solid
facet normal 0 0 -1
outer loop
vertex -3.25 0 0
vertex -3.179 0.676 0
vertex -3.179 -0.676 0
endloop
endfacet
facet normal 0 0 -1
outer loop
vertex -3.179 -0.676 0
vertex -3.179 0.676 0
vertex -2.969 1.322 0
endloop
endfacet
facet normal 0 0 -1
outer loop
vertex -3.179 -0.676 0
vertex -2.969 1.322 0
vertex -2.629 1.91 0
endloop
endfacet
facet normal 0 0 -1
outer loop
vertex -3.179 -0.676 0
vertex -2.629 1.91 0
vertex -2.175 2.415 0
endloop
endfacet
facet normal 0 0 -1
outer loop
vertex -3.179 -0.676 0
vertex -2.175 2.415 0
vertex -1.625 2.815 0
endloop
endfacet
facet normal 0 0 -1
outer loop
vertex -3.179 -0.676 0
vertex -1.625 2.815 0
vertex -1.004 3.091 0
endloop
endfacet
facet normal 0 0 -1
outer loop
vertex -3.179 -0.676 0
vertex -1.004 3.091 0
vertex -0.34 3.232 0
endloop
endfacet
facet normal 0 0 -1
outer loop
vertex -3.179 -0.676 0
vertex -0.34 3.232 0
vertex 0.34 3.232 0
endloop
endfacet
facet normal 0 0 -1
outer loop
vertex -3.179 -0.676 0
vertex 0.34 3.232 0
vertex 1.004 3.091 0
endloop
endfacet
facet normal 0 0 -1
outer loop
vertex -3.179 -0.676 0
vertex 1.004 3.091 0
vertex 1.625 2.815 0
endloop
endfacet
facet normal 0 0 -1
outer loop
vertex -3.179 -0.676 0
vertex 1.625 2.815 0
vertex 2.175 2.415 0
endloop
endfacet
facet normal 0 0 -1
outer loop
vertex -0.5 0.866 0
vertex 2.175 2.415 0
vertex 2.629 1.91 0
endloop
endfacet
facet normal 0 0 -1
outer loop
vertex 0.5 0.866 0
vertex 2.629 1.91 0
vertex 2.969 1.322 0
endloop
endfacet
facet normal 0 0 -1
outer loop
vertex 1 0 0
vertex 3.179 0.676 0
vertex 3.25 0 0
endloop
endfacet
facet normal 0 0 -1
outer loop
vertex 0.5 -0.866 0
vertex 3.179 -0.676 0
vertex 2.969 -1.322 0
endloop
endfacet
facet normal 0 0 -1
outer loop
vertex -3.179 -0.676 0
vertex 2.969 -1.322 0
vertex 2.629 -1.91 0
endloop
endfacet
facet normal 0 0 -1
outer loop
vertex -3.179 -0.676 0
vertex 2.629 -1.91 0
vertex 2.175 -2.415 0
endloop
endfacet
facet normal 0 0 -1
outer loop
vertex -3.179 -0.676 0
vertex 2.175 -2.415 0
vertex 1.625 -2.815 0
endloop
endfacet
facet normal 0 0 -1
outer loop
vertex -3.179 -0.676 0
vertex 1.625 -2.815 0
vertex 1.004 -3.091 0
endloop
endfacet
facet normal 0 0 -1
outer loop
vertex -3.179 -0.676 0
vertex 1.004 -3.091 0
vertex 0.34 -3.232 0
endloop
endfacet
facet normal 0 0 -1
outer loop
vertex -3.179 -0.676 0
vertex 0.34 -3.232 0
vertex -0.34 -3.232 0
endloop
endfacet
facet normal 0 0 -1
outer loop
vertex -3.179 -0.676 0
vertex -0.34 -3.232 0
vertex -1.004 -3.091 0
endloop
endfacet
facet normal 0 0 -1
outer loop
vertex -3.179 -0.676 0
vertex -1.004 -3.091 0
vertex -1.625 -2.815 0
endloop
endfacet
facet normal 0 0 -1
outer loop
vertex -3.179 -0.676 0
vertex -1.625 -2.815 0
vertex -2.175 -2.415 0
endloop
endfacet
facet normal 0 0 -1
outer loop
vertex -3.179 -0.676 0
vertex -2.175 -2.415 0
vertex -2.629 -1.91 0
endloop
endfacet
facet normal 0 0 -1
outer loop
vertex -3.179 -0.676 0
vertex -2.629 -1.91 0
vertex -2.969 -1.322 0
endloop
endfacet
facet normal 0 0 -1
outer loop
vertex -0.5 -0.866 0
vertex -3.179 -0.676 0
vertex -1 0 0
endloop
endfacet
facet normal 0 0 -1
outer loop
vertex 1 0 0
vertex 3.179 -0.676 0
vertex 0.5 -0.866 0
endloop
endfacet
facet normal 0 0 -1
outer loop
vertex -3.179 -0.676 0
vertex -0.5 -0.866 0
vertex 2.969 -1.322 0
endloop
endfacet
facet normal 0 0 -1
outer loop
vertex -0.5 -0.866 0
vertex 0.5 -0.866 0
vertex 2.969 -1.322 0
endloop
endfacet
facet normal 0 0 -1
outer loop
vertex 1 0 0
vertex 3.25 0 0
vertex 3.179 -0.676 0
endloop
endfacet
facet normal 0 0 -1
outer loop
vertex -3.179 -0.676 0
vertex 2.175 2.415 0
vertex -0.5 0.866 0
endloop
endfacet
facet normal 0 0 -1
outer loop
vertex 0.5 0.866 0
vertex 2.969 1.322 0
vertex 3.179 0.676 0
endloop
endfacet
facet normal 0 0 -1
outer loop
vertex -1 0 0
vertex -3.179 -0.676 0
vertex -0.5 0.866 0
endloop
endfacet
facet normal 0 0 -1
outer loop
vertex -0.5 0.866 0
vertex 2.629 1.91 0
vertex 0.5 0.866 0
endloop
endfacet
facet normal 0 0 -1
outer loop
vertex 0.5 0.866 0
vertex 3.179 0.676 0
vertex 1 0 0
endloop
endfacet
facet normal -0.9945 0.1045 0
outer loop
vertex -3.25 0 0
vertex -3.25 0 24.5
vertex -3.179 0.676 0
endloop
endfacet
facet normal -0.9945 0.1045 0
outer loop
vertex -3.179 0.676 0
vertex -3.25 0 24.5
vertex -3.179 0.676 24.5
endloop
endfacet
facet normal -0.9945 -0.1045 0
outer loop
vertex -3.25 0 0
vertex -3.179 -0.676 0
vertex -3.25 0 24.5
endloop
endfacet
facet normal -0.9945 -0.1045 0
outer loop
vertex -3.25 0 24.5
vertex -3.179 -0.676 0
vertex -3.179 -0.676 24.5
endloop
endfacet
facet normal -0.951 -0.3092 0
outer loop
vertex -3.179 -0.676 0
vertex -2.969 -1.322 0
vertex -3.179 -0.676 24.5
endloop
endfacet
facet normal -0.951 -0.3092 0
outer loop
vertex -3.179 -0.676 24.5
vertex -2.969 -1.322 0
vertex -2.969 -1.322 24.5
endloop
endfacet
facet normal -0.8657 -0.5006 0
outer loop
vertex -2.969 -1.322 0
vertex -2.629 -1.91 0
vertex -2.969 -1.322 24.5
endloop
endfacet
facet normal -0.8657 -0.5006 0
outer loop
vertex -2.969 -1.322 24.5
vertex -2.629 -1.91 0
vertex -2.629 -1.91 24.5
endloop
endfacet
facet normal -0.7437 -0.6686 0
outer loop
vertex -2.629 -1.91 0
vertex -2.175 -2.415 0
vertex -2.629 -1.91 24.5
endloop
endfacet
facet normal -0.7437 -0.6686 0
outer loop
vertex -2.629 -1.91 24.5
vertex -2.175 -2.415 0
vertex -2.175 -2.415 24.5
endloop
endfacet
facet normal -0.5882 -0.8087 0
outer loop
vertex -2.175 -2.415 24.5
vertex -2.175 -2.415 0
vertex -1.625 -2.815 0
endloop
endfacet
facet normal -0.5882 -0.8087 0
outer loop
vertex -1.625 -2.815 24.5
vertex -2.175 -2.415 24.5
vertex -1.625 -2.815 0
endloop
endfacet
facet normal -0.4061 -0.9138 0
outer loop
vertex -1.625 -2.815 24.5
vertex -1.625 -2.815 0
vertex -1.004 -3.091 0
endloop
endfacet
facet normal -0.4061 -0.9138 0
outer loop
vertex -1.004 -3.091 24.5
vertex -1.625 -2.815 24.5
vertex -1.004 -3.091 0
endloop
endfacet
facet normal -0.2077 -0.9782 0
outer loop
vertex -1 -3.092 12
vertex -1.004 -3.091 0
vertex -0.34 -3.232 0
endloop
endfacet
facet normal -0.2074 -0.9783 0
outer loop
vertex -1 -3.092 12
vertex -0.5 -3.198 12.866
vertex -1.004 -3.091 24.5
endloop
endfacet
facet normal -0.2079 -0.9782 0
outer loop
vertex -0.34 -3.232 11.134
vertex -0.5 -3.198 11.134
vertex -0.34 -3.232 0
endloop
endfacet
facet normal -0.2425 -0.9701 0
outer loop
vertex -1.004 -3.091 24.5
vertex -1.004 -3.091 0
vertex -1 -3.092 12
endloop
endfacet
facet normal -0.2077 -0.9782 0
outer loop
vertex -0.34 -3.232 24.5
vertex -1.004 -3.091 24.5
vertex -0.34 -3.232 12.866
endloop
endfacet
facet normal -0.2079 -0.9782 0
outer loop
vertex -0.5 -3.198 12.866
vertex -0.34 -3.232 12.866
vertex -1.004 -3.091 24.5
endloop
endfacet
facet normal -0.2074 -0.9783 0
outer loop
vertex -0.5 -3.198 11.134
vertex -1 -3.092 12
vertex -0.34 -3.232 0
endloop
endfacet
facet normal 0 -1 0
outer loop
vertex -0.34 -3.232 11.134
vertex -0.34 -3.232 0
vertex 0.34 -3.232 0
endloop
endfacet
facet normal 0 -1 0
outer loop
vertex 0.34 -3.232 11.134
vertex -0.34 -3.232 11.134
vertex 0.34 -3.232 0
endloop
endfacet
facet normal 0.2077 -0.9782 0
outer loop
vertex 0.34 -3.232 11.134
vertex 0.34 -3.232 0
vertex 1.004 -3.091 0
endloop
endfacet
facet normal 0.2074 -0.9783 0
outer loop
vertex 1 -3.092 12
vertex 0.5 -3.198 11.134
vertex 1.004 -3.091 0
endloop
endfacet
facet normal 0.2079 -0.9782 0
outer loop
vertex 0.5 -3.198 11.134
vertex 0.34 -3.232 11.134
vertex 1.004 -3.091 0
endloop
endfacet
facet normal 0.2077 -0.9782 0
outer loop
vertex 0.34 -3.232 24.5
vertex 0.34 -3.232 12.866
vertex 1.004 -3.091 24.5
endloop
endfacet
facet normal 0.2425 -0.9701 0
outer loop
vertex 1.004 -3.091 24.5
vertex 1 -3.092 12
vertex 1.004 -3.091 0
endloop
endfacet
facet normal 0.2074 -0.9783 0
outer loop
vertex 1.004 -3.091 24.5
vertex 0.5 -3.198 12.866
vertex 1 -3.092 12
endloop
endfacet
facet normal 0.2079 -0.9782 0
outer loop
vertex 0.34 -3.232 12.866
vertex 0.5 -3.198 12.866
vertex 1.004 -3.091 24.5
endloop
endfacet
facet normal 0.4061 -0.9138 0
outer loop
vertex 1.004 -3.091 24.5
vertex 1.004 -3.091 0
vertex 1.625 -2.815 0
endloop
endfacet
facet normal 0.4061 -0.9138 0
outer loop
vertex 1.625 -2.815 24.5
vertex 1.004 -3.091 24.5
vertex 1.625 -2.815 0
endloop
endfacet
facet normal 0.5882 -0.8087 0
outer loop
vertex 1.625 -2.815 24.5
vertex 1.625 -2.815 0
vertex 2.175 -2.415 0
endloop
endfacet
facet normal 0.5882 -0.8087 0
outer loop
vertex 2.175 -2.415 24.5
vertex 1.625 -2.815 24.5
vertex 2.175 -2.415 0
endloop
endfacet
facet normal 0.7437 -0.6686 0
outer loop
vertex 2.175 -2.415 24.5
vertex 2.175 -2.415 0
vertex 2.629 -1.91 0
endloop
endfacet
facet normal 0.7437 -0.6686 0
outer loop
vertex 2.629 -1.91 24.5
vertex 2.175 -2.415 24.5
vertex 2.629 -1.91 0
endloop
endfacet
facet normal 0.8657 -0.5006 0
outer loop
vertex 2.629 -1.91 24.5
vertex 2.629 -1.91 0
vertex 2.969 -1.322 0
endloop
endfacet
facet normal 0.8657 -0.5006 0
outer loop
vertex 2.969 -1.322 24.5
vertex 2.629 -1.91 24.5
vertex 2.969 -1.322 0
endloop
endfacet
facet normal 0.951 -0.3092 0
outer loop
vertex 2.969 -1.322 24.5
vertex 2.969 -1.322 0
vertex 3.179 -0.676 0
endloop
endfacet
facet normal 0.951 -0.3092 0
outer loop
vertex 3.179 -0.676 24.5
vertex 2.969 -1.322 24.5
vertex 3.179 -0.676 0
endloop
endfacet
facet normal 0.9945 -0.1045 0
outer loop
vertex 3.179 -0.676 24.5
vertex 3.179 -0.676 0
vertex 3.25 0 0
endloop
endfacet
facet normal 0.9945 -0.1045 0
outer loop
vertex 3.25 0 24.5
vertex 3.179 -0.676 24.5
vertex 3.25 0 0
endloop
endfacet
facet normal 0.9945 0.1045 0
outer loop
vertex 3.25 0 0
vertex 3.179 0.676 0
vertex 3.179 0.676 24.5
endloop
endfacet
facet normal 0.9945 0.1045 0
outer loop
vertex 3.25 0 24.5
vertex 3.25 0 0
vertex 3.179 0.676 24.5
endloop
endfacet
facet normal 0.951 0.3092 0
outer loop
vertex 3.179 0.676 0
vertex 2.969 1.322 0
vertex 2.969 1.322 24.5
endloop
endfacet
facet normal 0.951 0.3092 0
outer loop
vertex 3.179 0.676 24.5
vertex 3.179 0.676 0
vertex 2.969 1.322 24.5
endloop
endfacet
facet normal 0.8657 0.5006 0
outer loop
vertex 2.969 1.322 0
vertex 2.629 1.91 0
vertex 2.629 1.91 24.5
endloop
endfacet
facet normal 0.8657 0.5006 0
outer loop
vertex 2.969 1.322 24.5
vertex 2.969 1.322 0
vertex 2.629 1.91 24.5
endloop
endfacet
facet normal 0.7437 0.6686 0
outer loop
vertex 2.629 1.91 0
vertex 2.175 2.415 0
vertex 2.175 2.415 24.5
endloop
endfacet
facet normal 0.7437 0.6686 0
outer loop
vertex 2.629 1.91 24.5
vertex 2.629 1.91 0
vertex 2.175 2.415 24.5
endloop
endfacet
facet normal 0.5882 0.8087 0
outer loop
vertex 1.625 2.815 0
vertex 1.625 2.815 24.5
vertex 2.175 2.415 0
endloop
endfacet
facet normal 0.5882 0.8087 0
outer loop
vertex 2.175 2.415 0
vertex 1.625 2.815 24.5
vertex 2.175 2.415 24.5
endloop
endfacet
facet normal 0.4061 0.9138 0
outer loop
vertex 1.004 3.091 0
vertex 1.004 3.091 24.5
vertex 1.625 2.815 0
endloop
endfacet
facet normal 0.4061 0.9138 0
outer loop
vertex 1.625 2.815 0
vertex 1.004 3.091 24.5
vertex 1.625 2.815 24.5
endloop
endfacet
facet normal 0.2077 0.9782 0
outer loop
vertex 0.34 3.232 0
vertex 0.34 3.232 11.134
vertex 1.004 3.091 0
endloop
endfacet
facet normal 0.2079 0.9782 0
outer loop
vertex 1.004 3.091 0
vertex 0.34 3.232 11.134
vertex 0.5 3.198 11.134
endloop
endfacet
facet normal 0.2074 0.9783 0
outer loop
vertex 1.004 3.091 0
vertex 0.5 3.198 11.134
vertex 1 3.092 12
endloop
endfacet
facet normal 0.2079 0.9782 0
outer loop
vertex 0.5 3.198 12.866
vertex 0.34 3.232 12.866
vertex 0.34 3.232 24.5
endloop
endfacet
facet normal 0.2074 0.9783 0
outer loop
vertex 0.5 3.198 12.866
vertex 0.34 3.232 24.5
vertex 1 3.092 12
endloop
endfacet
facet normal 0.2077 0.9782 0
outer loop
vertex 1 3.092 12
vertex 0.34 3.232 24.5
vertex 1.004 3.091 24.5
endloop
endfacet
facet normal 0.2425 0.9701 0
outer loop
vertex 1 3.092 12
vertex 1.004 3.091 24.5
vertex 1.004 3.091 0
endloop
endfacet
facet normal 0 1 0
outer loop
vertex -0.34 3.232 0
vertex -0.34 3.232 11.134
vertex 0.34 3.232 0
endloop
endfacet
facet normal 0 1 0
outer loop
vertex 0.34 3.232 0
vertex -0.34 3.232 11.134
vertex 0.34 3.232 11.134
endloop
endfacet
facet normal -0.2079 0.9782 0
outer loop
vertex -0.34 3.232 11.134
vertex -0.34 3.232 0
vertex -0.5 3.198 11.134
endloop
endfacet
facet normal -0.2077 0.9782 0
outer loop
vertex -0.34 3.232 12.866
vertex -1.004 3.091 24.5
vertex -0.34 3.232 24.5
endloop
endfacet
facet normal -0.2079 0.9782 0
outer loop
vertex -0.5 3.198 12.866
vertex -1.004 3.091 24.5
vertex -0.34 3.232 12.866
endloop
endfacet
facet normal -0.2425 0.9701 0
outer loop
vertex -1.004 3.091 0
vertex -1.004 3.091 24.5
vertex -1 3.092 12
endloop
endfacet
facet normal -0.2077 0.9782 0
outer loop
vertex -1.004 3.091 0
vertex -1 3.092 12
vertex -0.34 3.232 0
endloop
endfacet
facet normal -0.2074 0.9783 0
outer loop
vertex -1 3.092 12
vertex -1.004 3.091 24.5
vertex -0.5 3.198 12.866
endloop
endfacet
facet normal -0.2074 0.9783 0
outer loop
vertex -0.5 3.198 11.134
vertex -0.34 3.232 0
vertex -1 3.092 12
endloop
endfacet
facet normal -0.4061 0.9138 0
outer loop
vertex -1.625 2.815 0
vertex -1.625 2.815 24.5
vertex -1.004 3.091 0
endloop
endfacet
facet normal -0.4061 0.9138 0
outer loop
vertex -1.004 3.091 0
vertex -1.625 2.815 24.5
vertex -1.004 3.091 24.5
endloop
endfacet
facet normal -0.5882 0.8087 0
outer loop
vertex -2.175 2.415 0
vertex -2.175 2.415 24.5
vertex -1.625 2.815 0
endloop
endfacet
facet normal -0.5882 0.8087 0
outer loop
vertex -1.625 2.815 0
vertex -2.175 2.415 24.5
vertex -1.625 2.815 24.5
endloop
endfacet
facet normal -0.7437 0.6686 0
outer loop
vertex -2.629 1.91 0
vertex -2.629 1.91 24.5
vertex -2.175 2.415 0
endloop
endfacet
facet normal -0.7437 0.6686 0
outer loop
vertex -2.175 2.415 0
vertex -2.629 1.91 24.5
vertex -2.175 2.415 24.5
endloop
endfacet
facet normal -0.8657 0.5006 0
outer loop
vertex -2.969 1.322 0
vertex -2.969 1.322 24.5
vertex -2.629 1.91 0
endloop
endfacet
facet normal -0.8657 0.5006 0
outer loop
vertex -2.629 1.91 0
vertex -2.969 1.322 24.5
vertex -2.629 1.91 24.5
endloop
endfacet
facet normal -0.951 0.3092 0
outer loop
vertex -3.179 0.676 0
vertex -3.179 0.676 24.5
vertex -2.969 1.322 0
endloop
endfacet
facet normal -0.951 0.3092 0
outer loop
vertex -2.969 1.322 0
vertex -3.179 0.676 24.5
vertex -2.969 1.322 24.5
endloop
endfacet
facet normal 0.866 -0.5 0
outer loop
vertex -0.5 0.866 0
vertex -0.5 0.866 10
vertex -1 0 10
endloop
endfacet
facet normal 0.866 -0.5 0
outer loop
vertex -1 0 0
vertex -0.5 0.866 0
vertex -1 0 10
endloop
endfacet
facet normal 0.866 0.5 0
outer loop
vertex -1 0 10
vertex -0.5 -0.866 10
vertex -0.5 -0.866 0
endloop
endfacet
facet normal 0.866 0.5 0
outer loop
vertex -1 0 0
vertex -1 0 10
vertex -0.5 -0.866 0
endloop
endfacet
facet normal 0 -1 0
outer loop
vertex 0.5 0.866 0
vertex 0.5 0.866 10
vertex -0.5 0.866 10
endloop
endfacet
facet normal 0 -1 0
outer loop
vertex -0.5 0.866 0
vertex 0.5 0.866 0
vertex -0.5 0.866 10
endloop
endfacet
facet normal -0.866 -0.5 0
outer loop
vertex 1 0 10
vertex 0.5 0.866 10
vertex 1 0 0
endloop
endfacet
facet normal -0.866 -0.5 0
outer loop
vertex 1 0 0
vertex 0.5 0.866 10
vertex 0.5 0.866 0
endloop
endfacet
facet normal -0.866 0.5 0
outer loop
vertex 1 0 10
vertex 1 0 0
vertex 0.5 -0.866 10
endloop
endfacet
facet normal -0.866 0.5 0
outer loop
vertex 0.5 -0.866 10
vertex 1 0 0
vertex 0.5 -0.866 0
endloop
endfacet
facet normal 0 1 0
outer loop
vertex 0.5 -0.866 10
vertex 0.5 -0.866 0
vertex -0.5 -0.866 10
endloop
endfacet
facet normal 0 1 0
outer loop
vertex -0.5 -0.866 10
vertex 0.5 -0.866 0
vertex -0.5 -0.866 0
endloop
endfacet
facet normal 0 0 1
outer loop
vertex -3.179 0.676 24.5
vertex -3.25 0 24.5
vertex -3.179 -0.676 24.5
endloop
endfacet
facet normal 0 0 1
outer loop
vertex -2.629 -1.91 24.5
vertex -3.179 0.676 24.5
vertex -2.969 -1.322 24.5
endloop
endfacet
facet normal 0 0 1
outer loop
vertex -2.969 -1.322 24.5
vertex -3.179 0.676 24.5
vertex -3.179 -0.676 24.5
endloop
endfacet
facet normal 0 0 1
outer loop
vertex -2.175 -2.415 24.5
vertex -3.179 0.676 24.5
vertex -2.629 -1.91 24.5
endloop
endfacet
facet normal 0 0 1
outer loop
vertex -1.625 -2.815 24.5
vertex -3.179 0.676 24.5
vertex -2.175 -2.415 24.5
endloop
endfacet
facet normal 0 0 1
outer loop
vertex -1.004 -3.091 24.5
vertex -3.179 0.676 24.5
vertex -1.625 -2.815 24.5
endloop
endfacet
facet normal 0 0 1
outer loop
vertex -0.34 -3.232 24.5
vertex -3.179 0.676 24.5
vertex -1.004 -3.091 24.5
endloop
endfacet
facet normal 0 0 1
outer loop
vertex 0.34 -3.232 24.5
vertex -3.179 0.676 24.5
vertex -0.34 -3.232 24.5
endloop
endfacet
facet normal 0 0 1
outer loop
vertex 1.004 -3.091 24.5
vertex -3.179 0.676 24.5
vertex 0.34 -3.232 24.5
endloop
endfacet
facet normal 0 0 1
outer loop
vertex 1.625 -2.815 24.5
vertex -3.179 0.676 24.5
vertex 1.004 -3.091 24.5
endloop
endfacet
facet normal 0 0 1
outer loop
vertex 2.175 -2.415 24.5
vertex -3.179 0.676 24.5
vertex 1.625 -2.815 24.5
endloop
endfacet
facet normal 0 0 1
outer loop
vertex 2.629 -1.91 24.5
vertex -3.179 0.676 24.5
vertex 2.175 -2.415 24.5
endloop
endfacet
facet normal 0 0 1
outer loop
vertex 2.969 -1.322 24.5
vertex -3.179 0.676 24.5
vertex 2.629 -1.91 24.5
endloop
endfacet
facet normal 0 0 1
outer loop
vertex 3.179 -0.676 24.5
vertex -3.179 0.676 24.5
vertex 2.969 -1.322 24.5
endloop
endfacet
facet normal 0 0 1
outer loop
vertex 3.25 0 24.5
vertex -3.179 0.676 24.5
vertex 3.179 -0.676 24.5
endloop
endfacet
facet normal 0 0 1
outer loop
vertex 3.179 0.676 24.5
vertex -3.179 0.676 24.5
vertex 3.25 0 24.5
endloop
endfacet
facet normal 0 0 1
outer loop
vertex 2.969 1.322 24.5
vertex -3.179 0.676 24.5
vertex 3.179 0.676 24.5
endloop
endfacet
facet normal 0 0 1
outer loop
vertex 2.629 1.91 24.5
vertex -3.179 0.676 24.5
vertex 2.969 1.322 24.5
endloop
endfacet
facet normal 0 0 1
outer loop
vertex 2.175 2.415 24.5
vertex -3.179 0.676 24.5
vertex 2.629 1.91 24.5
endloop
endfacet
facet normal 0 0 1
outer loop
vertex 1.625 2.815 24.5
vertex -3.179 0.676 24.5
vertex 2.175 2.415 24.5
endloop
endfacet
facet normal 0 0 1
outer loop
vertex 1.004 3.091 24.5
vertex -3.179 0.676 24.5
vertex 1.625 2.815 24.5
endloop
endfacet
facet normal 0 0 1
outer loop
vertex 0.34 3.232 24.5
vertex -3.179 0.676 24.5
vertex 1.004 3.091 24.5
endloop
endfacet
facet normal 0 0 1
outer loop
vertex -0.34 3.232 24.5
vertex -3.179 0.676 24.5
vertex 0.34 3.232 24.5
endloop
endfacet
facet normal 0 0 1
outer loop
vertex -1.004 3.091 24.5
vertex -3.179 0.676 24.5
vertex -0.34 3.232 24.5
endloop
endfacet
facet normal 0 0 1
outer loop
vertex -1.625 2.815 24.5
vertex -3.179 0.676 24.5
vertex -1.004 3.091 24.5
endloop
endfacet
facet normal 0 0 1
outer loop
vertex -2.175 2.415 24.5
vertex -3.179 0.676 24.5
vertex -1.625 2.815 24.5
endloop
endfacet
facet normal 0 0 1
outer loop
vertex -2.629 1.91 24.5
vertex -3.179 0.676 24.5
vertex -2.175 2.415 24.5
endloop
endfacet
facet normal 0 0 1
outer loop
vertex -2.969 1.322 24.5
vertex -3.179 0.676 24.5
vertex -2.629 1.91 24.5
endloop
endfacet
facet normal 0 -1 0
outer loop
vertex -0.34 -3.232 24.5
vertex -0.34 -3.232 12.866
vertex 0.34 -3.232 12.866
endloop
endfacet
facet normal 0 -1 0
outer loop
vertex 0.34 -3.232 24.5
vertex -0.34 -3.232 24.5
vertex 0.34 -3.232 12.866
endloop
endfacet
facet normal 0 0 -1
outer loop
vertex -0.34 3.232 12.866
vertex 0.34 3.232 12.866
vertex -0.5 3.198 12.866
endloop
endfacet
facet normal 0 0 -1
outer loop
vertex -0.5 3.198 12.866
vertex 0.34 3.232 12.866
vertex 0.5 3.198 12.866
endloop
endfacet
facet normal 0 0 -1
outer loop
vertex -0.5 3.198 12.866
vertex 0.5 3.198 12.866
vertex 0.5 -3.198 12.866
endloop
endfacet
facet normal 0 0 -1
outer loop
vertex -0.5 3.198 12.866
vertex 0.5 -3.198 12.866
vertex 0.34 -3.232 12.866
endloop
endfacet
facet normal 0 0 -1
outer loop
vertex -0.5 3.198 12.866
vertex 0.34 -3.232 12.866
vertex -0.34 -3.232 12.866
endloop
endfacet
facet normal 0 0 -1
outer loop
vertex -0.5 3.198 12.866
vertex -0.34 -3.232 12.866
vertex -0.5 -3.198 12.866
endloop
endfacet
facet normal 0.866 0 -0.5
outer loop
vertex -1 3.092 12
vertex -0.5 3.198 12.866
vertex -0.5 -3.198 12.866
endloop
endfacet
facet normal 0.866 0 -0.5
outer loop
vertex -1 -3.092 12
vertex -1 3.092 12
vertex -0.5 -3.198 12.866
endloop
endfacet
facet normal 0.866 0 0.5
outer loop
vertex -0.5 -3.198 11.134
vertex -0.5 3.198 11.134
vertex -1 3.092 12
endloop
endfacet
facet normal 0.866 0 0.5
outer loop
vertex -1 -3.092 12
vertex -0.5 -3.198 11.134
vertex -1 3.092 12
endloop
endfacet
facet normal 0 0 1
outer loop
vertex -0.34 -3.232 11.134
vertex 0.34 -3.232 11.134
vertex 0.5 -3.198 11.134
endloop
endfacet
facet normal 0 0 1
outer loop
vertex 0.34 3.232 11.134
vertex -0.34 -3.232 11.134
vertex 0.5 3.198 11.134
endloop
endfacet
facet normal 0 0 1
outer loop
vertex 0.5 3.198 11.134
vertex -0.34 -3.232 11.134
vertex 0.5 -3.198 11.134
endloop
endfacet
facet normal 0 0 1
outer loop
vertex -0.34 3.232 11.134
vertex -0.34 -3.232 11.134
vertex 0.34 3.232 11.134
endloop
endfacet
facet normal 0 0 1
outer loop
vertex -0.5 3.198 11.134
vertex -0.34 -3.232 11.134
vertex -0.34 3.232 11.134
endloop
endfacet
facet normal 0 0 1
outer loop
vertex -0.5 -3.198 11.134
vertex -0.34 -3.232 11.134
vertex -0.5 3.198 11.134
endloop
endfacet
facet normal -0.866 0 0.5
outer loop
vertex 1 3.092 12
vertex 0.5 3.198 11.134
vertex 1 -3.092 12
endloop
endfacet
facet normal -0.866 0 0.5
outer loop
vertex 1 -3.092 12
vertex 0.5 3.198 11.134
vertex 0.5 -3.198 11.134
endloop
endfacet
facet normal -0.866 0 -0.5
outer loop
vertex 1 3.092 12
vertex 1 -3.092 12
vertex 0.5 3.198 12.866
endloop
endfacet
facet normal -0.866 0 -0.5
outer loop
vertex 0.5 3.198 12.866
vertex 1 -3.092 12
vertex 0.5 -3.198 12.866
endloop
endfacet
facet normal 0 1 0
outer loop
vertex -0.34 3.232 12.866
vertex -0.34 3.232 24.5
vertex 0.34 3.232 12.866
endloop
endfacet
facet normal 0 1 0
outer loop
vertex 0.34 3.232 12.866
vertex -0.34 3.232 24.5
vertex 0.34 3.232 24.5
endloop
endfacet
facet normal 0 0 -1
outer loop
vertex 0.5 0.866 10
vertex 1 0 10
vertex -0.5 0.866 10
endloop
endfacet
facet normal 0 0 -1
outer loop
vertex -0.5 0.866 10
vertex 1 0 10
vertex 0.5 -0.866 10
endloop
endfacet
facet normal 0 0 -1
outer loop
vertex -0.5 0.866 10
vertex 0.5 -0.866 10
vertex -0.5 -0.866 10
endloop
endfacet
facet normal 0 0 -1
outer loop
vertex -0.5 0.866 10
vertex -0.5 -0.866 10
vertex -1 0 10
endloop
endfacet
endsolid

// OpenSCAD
//size
//total = 24.5mm
//diameter = 6.5mm

//center hole
//heigth = 10mm
//diameter = 1.6mm

//lateral hole
//distance from base = 12mm
//diameter = 1.6mm

total_size = 24.5;
total_diameter = 6.5;
total_faces = 30;
total_r = total_diameter / 2; //3.25

hole_diameter = 2; //1.8mm
hole_faces = 6; //6 faces
late_hole_distance = 12;
late_hole_h = total_diameter + 2; //8.5
cent_hole_h = late_hole_distance - hole_diameter; //10
holes_r = hole_diameter / 2; //1 or 0.9

draw();

module draw() {
	//union() {
	difference() {
		draw_body();
		draw_centerhole();
		draw_lateralhole();
	}
}

module draw_body() {
	cylinder(h=total_size, r=total_r, $fn=total_faces);
}

module draw_centerhole() {
	cylinder(h=cent_hole_h, r=holes_r, $fn=hole_faces);
}

module draw_lateralhole() {
	translate([0, late_hole_h/2, late_hole_distance])
		rotate([90, 0, 0])
			cylinder(h=10, r=holes_r, $fn=hole_faces);
}
